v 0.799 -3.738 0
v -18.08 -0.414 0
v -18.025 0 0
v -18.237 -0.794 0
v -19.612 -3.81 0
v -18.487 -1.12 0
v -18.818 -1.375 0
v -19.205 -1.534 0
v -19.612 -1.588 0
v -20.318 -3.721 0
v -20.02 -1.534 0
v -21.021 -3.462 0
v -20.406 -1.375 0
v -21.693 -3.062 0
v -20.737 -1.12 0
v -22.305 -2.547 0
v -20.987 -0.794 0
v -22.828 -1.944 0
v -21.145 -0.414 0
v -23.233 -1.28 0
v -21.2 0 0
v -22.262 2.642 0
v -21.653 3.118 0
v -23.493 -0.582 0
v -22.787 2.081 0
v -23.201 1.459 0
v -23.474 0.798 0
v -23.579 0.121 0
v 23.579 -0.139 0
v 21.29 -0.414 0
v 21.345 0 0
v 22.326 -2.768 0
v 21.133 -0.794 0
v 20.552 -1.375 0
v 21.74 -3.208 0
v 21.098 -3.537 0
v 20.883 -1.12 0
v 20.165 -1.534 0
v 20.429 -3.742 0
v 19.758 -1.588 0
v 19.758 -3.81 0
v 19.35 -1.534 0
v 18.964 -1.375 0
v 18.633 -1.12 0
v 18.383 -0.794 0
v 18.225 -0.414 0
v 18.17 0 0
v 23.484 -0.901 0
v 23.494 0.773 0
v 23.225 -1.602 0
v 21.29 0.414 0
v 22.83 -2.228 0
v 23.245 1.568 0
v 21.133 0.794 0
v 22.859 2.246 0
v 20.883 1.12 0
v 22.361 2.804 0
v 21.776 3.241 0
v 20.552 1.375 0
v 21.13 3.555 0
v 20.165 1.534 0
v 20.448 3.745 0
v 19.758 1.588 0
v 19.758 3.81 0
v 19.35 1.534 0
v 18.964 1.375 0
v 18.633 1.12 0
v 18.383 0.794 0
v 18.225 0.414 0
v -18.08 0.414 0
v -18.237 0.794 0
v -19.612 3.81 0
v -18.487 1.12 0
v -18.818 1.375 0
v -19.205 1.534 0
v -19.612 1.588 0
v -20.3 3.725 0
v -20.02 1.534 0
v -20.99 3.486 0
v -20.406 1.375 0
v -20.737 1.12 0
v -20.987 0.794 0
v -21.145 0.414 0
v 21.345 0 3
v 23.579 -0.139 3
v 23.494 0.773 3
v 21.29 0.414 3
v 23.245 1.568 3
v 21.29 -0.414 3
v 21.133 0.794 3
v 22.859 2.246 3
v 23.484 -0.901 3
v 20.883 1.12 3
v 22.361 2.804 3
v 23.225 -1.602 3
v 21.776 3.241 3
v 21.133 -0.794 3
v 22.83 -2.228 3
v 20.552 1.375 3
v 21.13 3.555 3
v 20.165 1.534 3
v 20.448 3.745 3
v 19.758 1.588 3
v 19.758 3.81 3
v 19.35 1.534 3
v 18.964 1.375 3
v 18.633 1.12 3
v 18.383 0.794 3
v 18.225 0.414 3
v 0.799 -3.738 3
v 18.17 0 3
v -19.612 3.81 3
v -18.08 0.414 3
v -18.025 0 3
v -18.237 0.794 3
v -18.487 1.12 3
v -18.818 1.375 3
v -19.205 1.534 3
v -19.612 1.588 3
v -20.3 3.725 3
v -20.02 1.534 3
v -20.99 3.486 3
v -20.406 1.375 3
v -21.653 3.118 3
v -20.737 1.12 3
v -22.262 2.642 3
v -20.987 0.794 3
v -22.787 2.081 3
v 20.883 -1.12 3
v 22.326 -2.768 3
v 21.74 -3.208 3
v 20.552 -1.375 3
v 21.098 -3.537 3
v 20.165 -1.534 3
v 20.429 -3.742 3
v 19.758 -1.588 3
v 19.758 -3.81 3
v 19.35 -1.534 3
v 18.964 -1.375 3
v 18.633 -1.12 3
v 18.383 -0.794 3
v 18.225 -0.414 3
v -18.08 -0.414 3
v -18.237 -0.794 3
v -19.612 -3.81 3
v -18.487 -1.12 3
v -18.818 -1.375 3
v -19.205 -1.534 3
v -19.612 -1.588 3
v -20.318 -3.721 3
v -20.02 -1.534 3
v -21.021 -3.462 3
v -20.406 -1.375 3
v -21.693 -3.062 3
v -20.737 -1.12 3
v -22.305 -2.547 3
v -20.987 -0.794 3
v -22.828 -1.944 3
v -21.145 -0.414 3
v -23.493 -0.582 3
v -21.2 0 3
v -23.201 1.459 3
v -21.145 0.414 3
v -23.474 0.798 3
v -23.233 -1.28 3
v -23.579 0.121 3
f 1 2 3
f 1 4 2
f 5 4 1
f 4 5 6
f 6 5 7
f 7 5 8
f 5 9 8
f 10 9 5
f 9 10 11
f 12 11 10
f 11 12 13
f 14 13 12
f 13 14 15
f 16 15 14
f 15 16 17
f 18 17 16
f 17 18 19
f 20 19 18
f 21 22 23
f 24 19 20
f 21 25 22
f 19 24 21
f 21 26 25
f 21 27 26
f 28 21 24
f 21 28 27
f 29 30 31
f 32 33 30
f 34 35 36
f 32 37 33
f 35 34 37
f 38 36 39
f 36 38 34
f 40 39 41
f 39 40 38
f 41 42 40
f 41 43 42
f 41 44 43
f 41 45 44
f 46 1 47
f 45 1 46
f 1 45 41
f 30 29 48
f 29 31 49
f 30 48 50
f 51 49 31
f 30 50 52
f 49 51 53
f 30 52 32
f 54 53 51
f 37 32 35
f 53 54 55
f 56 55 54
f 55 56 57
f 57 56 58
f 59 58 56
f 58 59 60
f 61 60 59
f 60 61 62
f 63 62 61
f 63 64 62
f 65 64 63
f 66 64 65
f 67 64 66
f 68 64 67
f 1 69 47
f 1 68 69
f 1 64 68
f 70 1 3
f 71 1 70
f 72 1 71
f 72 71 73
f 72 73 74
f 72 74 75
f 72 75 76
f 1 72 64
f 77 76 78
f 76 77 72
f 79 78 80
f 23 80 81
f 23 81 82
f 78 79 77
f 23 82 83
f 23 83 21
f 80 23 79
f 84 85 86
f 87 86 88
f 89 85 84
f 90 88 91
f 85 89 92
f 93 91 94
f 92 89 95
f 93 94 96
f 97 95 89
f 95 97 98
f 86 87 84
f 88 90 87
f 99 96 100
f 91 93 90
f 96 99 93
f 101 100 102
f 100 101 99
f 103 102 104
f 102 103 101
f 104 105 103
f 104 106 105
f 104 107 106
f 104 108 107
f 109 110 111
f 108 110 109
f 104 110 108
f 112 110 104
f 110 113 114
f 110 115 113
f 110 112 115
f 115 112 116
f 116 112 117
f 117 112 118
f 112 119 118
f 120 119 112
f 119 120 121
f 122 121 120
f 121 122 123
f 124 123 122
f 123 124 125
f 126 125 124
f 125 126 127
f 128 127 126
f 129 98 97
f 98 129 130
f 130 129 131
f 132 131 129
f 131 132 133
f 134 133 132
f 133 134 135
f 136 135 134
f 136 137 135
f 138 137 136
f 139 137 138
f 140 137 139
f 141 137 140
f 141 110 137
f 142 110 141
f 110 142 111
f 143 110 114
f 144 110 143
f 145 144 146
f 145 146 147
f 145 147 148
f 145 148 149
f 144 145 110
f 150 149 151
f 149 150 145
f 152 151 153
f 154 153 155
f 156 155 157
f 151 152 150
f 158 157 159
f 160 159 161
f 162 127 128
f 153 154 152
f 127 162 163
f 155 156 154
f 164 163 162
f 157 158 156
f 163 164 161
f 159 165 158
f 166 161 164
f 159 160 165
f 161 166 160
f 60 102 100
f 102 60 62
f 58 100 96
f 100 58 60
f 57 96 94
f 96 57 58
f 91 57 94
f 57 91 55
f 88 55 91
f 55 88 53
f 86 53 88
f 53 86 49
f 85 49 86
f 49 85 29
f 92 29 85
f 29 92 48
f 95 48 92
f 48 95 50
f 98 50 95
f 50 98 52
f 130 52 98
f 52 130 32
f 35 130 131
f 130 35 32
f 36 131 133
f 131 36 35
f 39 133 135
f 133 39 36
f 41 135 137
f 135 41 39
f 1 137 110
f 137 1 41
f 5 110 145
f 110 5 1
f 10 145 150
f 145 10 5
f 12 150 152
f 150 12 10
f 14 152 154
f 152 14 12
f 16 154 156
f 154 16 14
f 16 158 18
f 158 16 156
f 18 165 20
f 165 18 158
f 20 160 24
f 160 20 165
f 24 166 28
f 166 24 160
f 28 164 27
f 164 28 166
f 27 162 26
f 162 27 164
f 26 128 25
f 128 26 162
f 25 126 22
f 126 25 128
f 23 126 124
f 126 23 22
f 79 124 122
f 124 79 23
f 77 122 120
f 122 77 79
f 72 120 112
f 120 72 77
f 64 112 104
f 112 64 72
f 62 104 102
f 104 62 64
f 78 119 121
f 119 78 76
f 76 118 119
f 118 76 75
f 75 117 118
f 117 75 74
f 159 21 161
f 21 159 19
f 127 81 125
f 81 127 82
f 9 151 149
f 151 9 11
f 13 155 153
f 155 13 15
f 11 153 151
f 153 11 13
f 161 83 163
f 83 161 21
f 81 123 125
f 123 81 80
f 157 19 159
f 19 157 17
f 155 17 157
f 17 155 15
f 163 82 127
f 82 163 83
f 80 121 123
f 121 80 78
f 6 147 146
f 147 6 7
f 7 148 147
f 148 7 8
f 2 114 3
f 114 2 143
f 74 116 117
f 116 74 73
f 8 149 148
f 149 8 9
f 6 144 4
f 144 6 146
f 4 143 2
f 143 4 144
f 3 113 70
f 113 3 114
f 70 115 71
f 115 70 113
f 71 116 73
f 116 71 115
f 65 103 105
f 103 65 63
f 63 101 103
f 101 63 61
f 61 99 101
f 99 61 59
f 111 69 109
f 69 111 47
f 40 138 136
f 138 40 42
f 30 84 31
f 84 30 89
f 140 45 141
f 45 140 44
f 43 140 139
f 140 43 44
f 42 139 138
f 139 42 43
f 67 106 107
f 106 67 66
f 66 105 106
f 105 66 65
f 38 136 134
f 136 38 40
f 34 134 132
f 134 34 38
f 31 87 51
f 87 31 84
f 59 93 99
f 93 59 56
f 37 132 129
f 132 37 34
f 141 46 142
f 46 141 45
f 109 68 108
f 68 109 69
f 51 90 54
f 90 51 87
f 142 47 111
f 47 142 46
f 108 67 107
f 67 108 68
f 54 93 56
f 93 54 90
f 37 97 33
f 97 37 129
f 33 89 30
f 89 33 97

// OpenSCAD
// Module names are of the form poly_<inkscape-path-id>().  As a result,
// you can associate a polygon in this OpenSCAD program with the corresponding
// SVG element in the Inkscape document by looking for the XML element with
// the attribute id="inkscape-path-id".

// fudge value is used to ensure that subtracted solids are a tad taller
// in the z dimension than the polygon being subtracted from.  This helps
// keep the resulting .stl file manifold.
fudge = 0.1;

module poly_path873(h)
{
  scale([25.4/96, -25.4/96, 1]) union()
  {
    difference()
    {
       linear_extrude(height=h)
         polygon([[-74.124584,-14.400000],[74.675414,-14.400000],[77.285653,-14.155761],[79.859915,-13.436672],[82.301175,-12.248546],[84.512404,-10.597200],[86.396577,-8.488447],[87.856668,-5.928103],[88.795649,-2.921982],[89.116494,0.524100],[88.756977,3.405397],[87.780012,6.053330],[86.287807,8.420751],[84.382568,10.460512],[82.166502,12.125466],[79.741817,13.368464],[77.210719,14.142358],[74.675414,14.400000],[3.021353,14.129588],[-74.124584,14.400000],[-76.793385,14.062727],[-79.451013,13.086219],[-81.989509,11.572945],[-84.300915,9.625375],[-86.277275,7.345977],[-87.810630,4.837219],[-88.793022,2.201570],[-89.116494,-0.458500],[-88.721036,-3.016176],[-87.687853,-5.514047],[-86.124588,-7.865588],[-84.138885,-9.984275],[-81.838390,-11.783584],[-79.330745,-13.176991],[-76.723595,-14.077971],[-74.124584,-14.400000]]);
       translate([0, 0, -fudge])
         linear_extrude(height=h+2*fudge)
           polygon([[-68.124584,0.000000],[-68.332277,-1.565506],[-68.928431,-3.000000],[-69.872662,-4.233532],[-71.124584,-5.196153],[-72.584198,-5.799038],[-74.124584,-6.000000],[-75.664970,-5.799038],[-77.124584,-5.196153],[-78.376506,-4.233532],[-79.320737,-3.000000],[-79.916891,-1.565506],[-80.124584,0.000000],[-79.916891,1.565506],[-79.320737,3.000000],[-78.376506,4.233532],[-77.124584,5.196153],[-75.664970,5.799038],[-74.124584,6.000000],[-72.584198,5.799038],[-71.124584,5.196153],[-69.872662,4.233532],[-68.928431,3.000000],[-68.332277,1.565506],[-68.124584,0.000000]]);
       translate([0, 0, -fudge])
         linear_extrude(height=h+2*fudge)
           polygon([[80.675414,0.000000],[80.467721,-1.565506],[79.871567,-3.000000],[78.927336,-4.233532],[77.675414,-5.196152],[76.215800,-5.799038],[74.675414,-6.000000],[73.135028,-5.799038],[71.675414,-5.196152],[70.423493,-4.233532],[69.479262,-3.000000],[68.883107,-1.565506],[68.675414,0.000000],[68.883107,1.565506],[69.479262,3.000000],[70.423493,4.233532],[71.675414,5.196152],[73.135028,5.799038],[74.675414,6.000000],[76.215800,5.799038],[77.675414,5.196152],[78.927336,4.233532],[79.871567,3.000000],[80.467721,1.565506],[80.675414,0.000000],[80.675414,0.000000]]);
    }
  }
}

module inkscape(h)
{

poly_path873(h);
}

inkscape(3);
